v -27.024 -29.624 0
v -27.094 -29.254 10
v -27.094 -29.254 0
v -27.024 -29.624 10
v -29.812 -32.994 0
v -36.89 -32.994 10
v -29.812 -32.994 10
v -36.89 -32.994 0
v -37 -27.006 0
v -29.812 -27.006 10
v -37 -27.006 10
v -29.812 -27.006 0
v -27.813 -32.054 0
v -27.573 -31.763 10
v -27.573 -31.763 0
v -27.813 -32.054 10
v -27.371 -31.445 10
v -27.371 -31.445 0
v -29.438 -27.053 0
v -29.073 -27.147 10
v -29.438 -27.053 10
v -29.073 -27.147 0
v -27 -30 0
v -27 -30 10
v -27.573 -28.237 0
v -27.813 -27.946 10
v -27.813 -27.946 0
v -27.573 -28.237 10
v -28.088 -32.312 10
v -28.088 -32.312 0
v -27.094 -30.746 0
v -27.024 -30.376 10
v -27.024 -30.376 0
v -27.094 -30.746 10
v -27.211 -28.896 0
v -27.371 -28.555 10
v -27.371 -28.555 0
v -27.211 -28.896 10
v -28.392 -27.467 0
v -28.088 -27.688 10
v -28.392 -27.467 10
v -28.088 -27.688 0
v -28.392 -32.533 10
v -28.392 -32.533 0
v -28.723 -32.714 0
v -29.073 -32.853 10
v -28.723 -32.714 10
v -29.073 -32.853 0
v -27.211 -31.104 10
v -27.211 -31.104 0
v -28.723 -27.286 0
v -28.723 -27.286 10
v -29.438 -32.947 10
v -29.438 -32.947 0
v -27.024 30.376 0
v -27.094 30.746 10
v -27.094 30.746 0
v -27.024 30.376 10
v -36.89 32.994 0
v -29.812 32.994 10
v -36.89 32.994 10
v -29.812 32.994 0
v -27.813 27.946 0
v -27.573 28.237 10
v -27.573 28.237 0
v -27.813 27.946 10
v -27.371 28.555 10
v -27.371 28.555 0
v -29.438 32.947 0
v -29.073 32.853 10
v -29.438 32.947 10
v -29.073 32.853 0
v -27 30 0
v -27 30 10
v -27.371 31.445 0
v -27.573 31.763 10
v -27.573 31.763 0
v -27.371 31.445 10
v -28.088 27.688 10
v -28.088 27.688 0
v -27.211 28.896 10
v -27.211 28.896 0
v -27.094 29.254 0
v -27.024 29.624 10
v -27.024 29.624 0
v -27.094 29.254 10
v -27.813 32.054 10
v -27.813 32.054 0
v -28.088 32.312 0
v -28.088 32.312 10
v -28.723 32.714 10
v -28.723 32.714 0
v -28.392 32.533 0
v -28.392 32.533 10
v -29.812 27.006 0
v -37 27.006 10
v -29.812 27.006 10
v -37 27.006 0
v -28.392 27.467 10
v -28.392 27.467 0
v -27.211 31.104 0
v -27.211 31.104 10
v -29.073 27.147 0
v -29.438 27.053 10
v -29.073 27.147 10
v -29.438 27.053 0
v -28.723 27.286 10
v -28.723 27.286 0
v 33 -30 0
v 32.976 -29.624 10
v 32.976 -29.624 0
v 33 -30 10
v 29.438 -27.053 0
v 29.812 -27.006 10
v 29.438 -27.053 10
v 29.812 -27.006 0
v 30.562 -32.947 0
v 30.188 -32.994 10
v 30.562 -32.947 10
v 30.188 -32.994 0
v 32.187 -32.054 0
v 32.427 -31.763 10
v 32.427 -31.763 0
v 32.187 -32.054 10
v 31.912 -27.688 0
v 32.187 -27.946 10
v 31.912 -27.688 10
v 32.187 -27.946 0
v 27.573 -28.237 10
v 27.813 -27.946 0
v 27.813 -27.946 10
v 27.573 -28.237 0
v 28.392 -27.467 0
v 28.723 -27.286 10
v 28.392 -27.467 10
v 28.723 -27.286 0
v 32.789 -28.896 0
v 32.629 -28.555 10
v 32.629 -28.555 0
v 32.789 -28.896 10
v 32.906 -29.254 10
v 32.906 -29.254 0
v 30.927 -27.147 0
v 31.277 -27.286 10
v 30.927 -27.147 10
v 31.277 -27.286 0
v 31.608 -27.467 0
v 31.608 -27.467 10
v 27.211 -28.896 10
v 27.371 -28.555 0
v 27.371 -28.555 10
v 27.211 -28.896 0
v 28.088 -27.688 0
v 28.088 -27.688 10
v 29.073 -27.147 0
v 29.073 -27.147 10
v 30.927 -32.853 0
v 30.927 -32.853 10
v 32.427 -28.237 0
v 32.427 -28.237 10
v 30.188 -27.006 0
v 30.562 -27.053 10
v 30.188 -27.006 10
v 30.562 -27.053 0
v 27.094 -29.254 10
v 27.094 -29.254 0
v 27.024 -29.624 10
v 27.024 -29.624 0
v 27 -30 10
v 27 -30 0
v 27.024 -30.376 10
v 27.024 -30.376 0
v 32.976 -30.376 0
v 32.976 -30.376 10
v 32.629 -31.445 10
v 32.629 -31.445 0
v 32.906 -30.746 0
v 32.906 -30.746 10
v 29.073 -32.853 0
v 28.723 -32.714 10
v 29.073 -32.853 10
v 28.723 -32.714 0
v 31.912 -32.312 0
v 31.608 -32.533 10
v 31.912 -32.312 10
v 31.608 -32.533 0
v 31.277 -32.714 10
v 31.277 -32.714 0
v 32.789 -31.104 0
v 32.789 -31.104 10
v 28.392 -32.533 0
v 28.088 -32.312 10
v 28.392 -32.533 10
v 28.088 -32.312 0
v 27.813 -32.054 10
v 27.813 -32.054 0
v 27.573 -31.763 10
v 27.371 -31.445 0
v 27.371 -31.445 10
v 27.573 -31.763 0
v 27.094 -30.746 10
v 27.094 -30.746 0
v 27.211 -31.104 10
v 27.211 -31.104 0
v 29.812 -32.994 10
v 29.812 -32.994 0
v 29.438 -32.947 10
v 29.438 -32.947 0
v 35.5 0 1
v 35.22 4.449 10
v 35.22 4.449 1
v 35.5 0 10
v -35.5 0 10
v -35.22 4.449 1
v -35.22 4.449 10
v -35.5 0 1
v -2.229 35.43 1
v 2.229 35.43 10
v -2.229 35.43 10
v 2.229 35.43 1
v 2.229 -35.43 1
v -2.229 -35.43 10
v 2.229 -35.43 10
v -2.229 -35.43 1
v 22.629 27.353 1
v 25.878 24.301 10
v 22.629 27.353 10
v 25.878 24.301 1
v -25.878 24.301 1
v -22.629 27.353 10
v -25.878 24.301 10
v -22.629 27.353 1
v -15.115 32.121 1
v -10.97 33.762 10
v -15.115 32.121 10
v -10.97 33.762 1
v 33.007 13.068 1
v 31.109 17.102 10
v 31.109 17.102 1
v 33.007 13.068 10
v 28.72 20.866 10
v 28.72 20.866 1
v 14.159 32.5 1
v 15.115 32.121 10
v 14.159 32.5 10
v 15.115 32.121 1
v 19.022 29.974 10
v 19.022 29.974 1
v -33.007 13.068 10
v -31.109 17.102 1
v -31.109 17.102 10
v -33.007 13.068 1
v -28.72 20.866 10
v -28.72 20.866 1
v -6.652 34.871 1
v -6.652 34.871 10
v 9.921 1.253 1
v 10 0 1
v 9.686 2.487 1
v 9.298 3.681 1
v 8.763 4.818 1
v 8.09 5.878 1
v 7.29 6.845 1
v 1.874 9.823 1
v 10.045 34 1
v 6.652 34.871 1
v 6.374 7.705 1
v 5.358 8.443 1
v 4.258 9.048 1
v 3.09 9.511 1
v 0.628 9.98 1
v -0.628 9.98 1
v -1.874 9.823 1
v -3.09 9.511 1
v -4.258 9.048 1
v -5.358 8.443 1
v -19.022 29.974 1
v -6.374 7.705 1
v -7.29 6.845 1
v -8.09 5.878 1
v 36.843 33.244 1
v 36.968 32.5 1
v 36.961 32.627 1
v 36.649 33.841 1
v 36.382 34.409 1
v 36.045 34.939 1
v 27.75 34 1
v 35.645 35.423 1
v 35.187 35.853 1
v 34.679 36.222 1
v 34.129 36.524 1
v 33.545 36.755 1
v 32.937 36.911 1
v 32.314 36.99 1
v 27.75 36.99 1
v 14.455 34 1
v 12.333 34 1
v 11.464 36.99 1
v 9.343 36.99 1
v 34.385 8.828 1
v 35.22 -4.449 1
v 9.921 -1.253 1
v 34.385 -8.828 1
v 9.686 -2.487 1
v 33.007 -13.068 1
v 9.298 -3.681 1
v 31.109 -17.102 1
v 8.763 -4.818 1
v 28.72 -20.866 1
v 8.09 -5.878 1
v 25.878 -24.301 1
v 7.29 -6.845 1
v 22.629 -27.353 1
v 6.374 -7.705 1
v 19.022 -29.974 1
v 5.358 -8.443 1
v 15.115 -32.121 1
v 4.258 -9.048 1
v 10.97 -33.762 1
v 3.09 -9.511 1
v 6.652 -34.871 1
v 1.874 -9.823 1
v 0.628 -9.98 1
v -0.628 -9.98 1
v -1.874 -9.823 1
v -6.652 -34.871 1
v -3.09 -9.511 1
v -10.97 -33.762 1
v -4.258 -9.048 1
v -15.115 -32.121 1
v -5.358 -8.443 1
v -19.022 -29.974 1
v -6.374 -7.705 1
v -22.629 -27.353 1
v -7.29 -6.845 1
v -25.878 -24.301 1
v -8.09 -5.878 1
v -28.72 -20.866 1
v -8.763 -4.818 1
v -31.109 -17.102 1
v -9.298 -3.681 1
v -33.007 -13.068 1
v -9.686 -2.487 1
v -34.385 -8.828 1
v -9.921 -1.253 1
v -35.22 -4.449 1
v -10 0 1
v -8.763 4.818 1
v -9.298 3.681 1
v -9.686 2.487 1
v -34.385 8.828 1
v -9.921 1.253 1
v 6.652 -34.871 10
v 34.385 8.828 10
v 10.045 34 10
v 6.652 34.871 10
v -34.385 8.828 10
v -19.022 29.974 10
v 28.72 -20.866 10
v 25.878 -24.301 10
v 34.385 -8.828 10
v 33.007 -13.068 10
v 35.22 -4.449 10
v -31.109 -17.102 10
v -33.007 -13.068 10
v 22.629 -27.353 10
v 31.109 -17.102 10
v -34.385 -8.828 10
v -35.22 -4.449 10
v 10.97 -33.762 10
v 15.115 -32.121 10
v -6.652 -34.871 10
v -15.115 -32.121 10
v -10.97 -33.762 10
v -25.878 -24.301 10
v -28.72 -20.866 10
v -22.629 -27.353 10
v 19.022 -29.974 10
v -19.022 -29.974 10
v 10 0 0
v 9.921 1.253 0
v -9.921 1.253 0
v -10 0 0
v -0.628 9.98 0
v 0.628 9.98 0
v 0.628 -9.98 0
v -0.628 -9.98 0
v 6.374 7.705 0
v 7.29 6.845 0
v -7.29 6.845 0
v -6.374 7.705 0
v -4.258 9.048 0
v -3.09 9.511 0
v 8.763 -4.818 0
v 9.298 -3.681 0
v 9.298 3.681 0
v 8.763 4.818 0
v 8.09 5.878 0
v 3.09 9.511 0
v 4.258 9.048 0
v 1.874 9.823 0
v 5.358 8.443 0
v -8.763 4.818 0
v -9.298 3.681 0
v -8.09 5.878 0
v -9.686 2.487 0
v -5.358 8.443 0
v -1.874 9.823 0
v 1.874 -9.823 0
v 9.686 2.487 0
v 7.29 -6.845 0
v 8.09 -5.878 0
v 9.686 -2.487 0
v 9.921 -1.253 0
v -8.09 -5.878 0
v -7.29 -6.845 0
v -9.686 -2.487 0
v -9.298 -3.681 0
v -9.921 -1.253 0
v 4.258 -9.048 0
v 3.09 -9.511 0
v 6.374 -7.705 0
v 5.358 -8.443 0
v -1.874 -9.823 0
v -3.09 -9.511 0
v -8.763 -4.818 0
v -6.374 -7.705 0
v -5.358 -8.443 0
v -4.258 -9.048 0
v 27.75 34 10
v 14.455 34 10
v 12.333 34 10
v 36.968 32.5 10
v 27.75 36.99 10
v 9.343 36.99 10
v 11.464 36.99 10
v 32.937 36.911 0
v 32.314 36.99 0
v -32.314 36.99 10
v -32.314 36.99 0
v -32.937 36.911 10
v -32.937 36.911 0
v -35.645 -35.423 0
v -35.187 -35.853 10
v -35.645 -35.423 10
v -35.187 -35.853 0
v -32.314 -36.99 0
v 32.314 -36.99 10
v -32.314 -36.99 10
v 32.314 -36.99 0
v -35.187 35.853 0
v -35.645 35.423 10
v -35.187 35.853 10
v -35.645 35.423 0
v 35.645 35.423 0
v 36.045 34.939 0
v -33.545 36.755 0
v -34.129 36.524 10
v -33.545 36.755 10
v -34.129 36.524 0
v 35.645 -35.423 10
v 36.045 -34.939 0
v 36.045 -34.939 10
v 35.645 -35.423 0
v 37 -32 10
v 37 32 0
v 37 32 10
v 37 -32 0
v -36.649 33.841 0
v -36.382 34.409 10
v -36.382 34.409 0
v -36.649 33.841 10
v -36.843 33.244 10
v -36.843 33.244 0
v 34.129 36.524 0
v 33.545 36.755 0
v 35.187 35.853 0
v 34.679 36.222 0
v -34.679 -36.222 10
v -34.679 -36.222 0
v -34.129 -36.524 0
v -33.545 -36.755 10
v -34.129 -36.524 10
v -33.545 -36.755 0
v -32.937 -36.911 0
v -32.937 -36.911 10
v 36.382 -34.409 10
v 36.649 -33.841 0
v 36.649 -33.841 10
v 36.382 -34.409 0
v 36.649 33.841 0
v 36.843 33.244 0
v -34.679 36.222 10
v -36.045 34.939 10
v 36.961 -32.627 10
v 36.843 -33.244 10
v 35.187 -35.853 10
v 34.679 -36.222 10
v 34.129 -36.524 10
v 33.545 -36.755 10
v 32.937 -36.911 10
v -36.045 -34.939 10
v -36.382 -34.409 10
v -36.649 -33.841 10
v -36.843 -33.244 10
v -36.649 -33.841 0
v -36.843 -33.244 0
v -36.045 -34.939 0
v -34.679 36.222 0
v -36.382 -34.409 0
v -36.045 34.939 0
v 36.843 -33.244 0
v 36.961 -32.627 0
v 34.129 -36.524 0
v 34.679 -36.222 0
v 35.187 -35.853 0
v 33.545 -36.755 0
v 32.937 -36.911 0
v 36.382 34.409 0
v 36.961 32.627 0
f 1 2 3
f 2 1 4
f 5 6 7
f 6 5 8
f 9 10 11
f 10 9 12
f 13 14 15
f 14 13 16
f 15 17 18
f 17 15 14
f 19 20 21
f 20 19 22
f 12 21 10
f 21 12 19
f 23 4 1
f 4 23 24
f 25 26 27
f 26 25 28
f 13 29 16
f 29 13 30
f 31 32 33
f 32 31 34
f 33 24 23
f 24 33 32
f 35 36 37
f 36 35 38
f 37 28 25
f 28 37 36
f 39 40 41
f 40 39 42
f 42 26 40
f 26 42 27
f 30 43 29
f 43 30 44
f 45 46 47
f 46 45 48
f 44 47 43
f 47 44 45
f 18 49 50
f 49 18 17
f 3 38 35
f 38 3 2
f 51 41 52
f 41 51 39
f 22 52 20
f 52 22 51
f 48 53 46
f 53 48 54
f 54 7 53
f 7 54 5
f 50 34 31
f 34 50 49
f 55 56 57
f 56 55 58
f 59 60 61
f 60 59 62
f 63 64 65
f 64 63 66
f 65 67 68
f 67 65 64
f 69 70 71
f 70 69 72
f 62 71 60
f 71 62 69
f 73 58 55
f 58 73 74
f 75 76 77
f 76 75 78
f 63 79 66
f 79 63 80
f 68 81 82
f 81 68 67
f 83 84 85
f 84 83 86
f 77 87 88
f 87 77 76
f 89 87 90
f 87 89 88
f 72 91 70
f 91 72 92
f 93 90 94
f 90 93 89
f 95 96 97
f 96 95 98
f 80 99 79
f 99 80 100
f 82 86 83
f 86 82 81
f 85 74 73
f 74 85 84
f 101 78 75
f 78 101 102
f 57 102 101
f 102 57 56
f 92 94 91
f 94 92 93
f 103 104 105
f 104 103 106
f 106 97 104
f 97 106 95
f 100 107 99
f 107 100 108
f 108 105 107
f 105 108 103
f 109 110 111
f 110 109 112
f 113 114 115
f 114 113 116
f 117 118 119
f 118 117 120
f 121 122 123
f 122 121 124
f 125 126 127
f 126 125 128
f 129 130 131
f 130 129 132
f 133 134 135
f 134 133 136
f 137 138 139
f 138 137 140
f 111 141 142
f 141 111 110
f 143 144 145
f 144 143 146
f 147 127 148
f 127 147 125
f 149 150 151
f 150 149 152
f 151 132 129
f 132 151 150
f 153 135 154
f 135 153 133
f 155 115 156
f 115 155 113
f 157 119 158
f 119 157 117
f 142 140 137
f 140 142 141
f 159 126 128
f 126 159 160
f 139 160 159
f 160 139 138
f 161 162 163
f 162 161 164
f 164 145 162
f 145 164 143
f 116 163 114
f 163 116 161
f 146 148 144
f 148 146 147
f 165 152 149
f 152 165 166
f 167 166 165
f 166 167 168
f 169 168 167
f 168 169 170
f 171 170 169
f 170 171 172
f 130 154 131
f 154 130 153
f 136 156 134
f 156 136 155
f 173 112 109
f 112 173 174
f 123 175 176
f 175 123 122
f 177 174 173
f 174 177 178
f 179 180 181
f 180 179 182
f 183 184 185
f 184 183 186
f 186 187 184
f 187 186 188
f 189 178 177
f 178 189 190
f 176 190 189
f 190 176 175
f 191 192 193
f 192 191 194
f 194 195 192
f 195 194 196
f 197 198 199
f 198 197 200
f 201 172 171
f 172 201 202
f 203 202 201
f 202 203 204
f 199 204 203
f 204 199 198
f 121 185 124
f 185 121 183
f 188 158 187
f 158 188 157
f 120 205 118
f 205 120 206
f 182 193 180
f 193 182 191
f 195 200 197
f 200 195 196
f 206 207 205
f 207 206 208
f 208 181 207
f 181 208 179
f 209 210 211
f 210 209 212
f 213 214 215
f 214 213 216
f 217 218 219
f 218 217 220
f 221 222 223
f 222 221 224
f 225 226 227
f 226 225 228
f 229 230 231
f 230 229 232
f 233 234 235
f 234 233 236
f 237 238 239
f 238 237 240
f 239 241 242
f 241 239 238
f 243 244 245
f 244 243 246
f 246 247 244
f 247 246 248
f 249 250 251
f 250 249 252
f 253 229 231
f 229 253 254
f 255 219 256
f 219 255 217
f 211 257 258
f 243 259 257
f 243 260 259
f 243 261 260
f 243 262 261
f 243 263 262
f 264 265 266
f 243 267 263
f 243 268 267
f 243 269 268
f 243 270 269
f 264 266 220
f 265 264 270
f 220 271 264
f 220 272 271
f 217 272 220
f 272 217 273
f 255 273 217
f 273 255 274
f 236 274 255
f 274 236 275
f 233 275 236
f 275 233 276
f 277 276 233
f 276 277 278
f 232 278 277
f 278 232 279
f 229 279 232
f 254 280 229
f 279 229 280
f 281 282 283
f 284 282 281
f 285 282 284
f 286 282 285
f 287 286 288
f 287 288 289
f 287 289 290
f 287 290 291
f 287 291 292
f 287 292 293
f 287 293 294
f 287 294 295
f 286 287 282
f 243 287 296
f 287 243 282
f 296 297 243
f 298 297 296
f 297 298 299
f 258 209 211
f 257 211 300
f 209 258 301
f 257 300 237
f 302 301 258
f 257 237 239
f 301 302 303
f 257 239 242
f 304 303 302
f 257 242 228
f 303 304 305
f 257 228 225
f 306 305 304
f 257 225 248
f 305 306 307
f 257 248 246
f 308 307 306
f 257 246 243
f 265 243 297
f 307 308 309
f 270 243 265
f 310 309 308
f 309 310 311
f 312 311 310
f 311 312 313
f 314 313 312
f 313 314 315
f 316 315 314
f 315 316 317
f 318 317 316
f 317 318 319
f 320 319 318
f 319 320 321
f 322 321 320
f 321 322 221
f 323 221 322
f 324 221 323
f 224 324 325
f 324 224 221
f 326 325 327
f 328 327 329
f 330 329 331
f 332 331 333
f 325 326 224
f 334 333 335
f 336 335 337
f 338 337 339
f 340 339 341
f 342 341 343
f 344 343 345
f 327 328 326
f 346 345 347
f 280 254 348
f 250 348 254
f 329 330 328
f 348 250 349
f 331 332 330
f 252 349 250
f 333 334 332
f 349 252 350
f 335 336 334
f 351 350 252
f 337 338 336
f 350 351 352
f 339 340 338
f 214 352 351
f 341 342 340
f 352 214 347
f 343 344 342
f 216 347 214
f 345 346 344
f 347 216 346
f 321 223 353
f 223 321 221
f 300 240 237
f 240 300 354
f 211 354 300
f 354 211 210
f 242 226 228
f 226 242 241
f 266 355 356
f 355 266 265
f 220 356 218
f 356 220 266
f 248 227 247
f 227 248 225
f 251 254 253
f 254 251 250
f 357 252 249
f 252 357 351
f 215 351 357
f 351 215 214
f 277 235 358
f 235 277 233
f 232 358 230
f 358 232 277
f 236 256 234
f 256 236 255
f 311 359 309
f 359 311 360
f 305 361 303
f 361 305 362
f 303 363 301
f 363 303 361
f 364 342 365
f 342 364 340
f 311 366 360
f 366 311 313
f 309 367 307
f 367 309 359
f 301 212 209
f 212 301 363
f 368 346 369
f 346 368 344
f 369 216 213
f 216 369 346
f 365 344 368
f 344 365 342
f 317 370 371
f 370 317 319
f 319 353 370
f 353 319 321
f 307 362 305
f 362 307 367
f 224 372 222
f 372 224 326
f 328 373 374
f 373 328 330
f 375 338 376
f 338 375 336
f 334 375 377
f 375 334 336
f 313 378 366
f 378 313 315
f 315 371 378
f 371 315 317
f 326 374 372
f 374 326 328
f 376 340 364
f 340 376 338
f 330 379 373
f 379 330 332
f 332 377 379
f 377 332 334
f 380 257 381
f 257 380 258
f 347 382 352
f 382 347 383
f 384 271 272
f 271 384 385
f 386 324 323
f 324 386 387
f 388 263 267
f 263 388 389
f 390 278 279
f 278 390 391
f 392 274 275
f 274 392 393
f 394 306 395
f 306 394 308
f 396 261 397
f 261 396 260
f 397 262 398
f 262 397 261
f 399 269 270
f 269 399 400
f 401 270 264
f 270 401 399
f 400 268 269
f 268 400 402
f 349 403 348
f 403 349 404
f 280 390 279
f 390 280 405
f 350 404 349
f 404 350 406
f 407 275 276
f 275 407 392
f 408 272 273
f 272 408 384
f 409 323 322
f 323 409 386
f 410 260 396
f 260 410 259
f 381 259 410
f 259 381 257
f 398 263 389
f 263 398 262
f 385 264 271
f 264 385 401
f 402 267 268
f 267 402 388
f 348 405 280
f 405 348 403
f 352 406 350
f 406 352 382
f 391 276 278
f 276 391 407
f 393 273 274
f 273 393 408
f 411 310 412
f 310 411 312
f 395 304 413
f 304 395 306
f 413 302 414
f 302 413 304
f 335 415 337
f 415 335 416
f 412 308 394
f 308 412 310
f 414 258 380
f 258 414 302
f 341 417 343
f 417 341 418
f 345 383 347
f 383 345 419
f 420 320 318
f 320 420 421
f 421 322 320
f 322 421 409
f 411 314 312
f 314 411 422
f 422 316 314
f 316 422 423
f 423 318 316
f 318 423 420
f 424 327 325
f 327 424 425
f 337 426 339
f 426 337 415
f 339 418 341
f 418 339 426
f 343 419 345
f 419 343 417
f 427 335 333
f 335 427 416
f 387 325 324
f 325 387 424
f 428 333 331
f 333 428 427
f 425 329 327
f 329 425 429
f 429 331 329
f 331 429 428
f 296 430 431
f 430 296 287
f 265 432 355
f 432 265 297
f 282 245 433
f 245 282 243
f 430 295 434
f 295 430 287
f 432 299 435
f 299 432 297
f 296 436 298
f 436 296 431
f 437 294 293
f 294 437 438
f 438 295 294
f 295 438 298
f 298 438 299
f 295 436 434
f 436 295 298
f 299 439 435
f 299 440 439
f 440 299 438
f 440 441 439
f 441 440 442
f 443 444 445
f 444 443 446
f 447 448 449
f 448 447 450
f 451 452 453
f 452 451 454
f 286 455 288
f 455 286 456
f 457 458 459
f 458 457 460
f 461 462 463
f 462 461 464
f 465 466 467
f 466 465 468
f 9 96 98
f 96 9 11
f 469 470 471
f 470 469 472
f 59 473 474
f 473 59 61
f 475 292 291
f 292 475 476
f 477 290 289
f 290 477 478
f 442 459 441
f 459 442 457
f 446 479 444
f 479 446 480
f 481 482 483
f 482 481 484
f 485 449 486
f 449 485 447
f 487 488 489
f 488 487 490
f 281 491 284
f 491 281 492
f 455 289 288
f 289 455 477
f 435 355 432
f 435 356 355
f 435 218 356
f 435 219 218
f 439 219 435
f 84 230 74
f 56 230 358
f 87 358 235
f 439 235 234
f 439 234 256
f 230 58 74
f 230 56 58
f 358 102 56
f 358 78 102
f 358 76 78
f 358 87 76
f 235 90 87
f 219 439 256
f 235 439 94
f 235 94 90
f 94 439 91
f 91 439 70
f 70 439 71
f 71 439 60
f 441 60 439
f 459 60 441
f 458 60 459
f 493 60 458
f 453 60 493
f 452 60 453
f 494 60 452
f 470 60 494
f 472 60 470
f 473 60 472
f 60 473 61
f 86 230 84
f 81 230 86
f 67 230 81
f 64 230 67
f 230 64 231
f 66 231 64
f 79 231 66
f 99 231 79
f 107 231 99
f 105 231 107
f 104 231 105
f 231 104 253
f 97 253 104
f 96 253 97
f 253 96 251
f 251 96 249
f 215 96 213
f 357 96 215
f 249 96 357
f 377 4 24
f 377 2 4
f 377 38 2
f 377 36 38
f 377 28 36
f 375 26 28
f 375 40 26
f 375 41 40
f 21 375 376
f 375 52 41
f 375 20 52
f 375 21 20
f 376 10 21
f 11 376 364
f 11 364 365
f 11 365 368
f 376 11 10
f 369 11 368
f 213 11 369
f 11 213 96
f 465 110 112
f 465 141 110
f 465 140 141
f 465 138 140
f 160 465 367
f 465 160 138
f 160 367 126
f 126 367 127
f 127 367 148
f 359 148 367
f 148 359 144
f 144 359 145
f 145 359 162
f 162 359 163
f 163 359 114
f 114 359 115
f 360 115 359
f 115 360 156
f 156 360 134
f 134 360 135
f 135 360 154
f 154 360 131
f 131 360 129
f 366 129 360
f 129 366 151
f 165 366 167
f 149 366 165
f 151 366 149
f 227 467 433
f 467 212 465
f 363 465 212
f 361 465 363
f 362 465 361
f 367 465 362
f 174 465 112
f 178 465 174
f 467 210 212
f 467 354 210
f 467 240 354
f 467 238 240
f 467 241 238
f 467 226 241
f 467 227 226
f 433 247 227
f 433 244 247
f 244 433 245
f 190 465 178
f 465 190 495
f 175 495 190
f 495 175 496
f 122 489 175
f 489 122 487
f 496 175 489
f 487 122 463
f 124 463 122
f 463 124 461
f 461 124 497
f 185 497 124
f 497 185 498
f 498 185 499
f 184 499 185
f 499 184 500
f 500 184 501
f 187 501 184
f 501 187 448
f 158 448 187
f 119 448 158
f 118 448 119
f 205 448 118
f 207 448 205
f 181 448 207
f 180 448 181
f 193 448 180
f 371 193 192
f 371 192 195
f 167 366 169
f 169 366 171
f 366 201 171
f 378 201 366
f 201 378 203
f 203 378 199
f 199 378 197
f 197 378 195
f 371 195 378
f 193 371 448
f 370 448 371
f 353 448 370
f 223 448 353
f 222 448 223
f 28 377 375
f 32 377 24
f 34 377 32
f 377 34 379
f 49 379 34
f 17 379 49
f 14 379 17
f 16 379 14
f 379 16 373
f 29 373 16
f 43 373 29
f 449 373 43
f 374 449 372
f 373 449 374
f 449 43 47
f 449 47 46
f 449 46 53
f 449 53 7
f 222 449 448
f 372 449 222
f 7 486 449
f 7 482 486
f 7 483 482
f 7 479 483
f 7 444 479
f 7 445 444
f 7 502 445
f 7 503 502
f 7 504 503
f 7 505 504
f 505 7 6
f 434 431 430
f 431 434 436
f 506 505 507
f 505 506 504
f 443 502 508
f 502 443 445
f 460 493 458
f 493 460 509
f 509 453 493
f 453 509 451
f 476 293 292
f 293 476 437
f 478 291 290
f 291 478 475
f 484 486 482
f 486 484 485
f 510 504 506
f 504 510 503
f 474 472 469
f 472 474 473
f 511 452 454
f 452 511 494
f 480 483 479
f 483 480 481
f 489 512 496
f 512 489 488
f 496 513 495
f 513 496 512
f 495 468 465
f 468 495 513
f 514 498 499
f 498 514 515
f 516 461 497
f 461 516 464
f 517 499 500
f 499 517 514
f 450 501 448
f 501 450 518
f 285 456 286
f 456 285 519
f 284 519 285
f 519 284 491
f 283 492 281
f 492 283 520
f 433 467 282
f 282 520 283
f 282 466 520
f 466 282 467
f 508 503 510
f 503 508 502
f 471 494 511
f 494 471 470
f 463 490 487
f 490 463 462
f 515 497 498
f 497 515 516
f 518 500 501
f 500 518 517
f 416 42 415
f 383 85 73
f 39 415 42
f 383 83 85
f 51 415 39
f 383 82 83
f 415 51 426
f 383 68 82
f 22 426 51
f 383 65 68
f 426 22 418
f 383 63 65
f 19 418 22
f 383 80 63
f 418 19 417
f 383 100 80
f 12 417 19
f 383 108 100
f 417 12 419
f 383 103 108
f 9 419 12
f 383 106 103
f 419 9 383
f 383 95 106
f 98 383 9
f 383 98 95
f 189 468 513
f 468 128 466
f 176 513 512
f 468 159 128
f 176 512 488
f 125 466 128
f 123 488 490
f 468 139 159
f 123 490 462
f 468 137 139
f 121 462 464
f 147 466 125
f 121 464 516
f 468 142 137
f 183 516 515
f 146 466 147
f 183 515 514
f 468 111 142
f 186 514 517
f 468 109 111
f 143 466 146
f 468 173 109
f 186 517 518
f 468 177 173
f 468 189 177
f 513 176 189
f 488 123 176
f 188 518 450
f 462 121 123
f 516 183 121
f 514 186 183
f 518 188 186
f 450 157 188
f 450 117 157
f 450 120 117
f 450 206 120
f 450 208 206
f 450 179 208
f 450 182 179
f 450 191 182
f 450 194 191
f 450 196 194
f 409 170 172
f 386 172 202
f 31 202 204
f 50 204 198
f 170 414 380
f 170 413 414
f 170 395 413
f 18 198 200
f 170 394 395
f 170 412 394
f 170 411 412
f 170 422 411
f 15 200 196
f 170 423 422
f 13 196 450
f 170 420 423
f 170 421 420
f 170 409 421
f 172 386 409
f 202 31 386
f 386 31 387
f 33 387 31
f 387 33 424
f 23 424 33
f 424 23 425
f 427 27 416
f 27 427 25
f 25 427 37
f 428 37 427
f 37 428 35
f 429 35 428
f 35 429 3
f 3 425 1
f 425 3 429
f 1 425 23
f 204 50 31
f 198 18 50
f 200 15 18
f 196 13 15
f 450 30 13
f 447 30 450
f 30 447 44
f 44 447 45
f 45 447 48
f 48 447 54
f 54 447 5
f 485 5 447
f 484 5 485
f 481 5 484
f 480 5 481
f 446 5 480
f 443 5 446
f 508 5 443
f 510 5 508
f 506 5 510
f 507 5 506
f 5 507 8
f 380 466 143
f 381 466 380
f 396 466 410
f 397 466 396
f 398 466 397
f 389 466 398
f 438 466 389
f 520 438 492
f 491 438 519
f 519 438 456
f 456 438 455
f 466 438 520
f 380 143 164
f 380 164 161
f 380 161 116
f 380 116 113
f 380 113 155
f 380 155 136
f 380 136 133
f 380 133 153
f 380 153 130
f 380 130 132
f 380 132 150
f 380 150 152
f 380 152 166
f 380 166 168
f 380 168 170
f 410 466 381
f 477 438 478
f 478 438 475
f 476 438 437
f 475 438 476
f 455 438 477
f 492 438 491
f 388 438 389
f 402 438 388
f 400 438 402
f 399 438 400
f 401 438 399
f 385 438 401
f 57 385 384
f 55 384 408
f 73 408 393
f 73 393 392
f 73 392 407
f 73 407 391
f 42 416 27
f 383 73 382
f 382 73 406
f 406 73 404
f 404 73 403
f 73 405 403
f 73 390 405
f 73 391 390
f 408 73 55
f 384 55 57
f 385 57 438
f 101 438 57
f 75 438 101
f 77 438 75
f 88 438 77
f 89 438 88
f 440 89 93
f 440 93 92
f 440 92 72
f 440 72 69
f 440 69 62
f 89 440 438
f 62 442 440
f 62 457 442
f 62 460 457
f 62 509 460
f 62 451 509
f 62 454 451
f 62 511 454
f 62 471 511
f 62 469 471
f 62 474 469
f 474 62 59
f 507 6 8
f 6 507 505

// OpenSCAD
$fn = 50;


difference() {
	union() {
		translate(v = [0, 0, 0]) {
			rotate(a = [0, 0, 0]) {
				hull() {
					translate(v = [-32.0000000000, 32.0000000000, 0]) {
						rotate(a = [0, 0, 0]) {
							translate(v = [0, 0, 0]) {
								rotate(a = [0, 0, 0]) {
									cylinder(h = 10, r = 5);
								}
							}
						}
					}
					translate(v = [32.0000000000, 32.0000000000, 0]) {
						rotate(a = [0, 0, 0]) {
							translate(v = [0, 0, 0]) {
								rotate(a = [0, 0, 0]) {
									cylinder(h = 10, r = 5);
								}
							}
						}
					}
					translate(v = [-32.0000000000, -32.0000000000, 0]) {
						rotate(a = [0, 0, 0]) {
							translate(v = [0, 0, 0]) {
								rotate(a = [0, 0, 0]) {
									cylinder(h = 10, r = 5);
								}
							}
						}
					}
					translate(v = [32.0000000000, -32.0000000000, 0]) {
						rotate(a = [0, 0, 0]) {
							translate(v = [0, 0, 0]) {
								rotate(a = [0, 0, 0]) {
									cylinder(h = 10, r = 5);
								}
							}
						}
					}
				}
			}
		}
	}
	union() {
		translate(v = [-37.5000000000, -30.0000000000, -125]) {
			rotate(a = [0, 0, 0]) {
				hull() {
					translate(v = [7.5000000000, 0, 0]) {
						rotate(a = [0, 0, 0]) {
							translate(v = [0, 0, 0]) {
								rotate(a = [0, 0, 0]) {
									cylinder(h = 250, r = 3.0000000000);
								}
							}
						}
					}
					translate(v = [-7.5000000000, 0, 0]) {
						rotate(a = [0, 0, 0]) {
							translate(v = [0, 0, 0]) {
								rotate(a = [0, 0, 0]) {
									cylinder(h = 250, r = 3.0000000000);
								}
							}
						}
					}
				}
			}
		}
		translate(v = [-37.5000000000, 30.0000000000, -125]) {
			rotate(a = [0, 0, 0]) {
				hull() {
					translate(v = [7.5000000000, 0, 0]) {
						rotate(a = [0, 0, 0]) {
							translate(v = [0, 0, 0]) {
								rotate(a = [0, 0, 0]) {
									cylinder(h = 250, r = 3.0000000000);
								}
							}
						}
					}
					translate(v = [-7.5000000000, 0, 0]) {
						rotate(a = [0, 0, 0]) {
							translate(v = [0, 0, 0]) {
								rotate(a = [0, 0, 0]) {
									cylinder(h = 250, r = 3.0000000000);
								}
							}
						}
					}
				}
			}
		}
		translate(v = [30.0000000000, -30.0000000000, -125.0000000000]) {
			rotate(a = [0, 0, 0]) {
				cylinder(h = 250, r = 3.0000000000);
			}
		}
		translate(v = [0, 0, 1.0000000000]) {
			rotate(a = [0, 0, 0]) {
				cylinder(h = 12, r = 35.5000000000);
			}
		}
		translate(v = [0, 0, -5.0000000000]) {
			rotate(a = [0, 0, 0]) {
				cylinder(h = 10, r = 10.0000000000);
			}
		}
		translate(v = [0.0000000000, 32.5000000000, 1]) {
			rotate(a = [0, 0, 0]) {
				cube(size = [37.0000000000, 1.5000000000, 12]);
			}
		}
		translate(v = [27.7500000000, 32.5000000000, 1]) {
			rotate(a = [0, 0, 0]) {
				cube(size = [9.2500000000, 4.5000000000, 12]);
			}
		}
		translate(v = [8.5833333333, 37.7500000000, 1]) {
			rotate(a = [0, 0, -45]) {
				cube(size = [7.5000000000, 1.5000000000, 12]);
			}
		}
	}
}
